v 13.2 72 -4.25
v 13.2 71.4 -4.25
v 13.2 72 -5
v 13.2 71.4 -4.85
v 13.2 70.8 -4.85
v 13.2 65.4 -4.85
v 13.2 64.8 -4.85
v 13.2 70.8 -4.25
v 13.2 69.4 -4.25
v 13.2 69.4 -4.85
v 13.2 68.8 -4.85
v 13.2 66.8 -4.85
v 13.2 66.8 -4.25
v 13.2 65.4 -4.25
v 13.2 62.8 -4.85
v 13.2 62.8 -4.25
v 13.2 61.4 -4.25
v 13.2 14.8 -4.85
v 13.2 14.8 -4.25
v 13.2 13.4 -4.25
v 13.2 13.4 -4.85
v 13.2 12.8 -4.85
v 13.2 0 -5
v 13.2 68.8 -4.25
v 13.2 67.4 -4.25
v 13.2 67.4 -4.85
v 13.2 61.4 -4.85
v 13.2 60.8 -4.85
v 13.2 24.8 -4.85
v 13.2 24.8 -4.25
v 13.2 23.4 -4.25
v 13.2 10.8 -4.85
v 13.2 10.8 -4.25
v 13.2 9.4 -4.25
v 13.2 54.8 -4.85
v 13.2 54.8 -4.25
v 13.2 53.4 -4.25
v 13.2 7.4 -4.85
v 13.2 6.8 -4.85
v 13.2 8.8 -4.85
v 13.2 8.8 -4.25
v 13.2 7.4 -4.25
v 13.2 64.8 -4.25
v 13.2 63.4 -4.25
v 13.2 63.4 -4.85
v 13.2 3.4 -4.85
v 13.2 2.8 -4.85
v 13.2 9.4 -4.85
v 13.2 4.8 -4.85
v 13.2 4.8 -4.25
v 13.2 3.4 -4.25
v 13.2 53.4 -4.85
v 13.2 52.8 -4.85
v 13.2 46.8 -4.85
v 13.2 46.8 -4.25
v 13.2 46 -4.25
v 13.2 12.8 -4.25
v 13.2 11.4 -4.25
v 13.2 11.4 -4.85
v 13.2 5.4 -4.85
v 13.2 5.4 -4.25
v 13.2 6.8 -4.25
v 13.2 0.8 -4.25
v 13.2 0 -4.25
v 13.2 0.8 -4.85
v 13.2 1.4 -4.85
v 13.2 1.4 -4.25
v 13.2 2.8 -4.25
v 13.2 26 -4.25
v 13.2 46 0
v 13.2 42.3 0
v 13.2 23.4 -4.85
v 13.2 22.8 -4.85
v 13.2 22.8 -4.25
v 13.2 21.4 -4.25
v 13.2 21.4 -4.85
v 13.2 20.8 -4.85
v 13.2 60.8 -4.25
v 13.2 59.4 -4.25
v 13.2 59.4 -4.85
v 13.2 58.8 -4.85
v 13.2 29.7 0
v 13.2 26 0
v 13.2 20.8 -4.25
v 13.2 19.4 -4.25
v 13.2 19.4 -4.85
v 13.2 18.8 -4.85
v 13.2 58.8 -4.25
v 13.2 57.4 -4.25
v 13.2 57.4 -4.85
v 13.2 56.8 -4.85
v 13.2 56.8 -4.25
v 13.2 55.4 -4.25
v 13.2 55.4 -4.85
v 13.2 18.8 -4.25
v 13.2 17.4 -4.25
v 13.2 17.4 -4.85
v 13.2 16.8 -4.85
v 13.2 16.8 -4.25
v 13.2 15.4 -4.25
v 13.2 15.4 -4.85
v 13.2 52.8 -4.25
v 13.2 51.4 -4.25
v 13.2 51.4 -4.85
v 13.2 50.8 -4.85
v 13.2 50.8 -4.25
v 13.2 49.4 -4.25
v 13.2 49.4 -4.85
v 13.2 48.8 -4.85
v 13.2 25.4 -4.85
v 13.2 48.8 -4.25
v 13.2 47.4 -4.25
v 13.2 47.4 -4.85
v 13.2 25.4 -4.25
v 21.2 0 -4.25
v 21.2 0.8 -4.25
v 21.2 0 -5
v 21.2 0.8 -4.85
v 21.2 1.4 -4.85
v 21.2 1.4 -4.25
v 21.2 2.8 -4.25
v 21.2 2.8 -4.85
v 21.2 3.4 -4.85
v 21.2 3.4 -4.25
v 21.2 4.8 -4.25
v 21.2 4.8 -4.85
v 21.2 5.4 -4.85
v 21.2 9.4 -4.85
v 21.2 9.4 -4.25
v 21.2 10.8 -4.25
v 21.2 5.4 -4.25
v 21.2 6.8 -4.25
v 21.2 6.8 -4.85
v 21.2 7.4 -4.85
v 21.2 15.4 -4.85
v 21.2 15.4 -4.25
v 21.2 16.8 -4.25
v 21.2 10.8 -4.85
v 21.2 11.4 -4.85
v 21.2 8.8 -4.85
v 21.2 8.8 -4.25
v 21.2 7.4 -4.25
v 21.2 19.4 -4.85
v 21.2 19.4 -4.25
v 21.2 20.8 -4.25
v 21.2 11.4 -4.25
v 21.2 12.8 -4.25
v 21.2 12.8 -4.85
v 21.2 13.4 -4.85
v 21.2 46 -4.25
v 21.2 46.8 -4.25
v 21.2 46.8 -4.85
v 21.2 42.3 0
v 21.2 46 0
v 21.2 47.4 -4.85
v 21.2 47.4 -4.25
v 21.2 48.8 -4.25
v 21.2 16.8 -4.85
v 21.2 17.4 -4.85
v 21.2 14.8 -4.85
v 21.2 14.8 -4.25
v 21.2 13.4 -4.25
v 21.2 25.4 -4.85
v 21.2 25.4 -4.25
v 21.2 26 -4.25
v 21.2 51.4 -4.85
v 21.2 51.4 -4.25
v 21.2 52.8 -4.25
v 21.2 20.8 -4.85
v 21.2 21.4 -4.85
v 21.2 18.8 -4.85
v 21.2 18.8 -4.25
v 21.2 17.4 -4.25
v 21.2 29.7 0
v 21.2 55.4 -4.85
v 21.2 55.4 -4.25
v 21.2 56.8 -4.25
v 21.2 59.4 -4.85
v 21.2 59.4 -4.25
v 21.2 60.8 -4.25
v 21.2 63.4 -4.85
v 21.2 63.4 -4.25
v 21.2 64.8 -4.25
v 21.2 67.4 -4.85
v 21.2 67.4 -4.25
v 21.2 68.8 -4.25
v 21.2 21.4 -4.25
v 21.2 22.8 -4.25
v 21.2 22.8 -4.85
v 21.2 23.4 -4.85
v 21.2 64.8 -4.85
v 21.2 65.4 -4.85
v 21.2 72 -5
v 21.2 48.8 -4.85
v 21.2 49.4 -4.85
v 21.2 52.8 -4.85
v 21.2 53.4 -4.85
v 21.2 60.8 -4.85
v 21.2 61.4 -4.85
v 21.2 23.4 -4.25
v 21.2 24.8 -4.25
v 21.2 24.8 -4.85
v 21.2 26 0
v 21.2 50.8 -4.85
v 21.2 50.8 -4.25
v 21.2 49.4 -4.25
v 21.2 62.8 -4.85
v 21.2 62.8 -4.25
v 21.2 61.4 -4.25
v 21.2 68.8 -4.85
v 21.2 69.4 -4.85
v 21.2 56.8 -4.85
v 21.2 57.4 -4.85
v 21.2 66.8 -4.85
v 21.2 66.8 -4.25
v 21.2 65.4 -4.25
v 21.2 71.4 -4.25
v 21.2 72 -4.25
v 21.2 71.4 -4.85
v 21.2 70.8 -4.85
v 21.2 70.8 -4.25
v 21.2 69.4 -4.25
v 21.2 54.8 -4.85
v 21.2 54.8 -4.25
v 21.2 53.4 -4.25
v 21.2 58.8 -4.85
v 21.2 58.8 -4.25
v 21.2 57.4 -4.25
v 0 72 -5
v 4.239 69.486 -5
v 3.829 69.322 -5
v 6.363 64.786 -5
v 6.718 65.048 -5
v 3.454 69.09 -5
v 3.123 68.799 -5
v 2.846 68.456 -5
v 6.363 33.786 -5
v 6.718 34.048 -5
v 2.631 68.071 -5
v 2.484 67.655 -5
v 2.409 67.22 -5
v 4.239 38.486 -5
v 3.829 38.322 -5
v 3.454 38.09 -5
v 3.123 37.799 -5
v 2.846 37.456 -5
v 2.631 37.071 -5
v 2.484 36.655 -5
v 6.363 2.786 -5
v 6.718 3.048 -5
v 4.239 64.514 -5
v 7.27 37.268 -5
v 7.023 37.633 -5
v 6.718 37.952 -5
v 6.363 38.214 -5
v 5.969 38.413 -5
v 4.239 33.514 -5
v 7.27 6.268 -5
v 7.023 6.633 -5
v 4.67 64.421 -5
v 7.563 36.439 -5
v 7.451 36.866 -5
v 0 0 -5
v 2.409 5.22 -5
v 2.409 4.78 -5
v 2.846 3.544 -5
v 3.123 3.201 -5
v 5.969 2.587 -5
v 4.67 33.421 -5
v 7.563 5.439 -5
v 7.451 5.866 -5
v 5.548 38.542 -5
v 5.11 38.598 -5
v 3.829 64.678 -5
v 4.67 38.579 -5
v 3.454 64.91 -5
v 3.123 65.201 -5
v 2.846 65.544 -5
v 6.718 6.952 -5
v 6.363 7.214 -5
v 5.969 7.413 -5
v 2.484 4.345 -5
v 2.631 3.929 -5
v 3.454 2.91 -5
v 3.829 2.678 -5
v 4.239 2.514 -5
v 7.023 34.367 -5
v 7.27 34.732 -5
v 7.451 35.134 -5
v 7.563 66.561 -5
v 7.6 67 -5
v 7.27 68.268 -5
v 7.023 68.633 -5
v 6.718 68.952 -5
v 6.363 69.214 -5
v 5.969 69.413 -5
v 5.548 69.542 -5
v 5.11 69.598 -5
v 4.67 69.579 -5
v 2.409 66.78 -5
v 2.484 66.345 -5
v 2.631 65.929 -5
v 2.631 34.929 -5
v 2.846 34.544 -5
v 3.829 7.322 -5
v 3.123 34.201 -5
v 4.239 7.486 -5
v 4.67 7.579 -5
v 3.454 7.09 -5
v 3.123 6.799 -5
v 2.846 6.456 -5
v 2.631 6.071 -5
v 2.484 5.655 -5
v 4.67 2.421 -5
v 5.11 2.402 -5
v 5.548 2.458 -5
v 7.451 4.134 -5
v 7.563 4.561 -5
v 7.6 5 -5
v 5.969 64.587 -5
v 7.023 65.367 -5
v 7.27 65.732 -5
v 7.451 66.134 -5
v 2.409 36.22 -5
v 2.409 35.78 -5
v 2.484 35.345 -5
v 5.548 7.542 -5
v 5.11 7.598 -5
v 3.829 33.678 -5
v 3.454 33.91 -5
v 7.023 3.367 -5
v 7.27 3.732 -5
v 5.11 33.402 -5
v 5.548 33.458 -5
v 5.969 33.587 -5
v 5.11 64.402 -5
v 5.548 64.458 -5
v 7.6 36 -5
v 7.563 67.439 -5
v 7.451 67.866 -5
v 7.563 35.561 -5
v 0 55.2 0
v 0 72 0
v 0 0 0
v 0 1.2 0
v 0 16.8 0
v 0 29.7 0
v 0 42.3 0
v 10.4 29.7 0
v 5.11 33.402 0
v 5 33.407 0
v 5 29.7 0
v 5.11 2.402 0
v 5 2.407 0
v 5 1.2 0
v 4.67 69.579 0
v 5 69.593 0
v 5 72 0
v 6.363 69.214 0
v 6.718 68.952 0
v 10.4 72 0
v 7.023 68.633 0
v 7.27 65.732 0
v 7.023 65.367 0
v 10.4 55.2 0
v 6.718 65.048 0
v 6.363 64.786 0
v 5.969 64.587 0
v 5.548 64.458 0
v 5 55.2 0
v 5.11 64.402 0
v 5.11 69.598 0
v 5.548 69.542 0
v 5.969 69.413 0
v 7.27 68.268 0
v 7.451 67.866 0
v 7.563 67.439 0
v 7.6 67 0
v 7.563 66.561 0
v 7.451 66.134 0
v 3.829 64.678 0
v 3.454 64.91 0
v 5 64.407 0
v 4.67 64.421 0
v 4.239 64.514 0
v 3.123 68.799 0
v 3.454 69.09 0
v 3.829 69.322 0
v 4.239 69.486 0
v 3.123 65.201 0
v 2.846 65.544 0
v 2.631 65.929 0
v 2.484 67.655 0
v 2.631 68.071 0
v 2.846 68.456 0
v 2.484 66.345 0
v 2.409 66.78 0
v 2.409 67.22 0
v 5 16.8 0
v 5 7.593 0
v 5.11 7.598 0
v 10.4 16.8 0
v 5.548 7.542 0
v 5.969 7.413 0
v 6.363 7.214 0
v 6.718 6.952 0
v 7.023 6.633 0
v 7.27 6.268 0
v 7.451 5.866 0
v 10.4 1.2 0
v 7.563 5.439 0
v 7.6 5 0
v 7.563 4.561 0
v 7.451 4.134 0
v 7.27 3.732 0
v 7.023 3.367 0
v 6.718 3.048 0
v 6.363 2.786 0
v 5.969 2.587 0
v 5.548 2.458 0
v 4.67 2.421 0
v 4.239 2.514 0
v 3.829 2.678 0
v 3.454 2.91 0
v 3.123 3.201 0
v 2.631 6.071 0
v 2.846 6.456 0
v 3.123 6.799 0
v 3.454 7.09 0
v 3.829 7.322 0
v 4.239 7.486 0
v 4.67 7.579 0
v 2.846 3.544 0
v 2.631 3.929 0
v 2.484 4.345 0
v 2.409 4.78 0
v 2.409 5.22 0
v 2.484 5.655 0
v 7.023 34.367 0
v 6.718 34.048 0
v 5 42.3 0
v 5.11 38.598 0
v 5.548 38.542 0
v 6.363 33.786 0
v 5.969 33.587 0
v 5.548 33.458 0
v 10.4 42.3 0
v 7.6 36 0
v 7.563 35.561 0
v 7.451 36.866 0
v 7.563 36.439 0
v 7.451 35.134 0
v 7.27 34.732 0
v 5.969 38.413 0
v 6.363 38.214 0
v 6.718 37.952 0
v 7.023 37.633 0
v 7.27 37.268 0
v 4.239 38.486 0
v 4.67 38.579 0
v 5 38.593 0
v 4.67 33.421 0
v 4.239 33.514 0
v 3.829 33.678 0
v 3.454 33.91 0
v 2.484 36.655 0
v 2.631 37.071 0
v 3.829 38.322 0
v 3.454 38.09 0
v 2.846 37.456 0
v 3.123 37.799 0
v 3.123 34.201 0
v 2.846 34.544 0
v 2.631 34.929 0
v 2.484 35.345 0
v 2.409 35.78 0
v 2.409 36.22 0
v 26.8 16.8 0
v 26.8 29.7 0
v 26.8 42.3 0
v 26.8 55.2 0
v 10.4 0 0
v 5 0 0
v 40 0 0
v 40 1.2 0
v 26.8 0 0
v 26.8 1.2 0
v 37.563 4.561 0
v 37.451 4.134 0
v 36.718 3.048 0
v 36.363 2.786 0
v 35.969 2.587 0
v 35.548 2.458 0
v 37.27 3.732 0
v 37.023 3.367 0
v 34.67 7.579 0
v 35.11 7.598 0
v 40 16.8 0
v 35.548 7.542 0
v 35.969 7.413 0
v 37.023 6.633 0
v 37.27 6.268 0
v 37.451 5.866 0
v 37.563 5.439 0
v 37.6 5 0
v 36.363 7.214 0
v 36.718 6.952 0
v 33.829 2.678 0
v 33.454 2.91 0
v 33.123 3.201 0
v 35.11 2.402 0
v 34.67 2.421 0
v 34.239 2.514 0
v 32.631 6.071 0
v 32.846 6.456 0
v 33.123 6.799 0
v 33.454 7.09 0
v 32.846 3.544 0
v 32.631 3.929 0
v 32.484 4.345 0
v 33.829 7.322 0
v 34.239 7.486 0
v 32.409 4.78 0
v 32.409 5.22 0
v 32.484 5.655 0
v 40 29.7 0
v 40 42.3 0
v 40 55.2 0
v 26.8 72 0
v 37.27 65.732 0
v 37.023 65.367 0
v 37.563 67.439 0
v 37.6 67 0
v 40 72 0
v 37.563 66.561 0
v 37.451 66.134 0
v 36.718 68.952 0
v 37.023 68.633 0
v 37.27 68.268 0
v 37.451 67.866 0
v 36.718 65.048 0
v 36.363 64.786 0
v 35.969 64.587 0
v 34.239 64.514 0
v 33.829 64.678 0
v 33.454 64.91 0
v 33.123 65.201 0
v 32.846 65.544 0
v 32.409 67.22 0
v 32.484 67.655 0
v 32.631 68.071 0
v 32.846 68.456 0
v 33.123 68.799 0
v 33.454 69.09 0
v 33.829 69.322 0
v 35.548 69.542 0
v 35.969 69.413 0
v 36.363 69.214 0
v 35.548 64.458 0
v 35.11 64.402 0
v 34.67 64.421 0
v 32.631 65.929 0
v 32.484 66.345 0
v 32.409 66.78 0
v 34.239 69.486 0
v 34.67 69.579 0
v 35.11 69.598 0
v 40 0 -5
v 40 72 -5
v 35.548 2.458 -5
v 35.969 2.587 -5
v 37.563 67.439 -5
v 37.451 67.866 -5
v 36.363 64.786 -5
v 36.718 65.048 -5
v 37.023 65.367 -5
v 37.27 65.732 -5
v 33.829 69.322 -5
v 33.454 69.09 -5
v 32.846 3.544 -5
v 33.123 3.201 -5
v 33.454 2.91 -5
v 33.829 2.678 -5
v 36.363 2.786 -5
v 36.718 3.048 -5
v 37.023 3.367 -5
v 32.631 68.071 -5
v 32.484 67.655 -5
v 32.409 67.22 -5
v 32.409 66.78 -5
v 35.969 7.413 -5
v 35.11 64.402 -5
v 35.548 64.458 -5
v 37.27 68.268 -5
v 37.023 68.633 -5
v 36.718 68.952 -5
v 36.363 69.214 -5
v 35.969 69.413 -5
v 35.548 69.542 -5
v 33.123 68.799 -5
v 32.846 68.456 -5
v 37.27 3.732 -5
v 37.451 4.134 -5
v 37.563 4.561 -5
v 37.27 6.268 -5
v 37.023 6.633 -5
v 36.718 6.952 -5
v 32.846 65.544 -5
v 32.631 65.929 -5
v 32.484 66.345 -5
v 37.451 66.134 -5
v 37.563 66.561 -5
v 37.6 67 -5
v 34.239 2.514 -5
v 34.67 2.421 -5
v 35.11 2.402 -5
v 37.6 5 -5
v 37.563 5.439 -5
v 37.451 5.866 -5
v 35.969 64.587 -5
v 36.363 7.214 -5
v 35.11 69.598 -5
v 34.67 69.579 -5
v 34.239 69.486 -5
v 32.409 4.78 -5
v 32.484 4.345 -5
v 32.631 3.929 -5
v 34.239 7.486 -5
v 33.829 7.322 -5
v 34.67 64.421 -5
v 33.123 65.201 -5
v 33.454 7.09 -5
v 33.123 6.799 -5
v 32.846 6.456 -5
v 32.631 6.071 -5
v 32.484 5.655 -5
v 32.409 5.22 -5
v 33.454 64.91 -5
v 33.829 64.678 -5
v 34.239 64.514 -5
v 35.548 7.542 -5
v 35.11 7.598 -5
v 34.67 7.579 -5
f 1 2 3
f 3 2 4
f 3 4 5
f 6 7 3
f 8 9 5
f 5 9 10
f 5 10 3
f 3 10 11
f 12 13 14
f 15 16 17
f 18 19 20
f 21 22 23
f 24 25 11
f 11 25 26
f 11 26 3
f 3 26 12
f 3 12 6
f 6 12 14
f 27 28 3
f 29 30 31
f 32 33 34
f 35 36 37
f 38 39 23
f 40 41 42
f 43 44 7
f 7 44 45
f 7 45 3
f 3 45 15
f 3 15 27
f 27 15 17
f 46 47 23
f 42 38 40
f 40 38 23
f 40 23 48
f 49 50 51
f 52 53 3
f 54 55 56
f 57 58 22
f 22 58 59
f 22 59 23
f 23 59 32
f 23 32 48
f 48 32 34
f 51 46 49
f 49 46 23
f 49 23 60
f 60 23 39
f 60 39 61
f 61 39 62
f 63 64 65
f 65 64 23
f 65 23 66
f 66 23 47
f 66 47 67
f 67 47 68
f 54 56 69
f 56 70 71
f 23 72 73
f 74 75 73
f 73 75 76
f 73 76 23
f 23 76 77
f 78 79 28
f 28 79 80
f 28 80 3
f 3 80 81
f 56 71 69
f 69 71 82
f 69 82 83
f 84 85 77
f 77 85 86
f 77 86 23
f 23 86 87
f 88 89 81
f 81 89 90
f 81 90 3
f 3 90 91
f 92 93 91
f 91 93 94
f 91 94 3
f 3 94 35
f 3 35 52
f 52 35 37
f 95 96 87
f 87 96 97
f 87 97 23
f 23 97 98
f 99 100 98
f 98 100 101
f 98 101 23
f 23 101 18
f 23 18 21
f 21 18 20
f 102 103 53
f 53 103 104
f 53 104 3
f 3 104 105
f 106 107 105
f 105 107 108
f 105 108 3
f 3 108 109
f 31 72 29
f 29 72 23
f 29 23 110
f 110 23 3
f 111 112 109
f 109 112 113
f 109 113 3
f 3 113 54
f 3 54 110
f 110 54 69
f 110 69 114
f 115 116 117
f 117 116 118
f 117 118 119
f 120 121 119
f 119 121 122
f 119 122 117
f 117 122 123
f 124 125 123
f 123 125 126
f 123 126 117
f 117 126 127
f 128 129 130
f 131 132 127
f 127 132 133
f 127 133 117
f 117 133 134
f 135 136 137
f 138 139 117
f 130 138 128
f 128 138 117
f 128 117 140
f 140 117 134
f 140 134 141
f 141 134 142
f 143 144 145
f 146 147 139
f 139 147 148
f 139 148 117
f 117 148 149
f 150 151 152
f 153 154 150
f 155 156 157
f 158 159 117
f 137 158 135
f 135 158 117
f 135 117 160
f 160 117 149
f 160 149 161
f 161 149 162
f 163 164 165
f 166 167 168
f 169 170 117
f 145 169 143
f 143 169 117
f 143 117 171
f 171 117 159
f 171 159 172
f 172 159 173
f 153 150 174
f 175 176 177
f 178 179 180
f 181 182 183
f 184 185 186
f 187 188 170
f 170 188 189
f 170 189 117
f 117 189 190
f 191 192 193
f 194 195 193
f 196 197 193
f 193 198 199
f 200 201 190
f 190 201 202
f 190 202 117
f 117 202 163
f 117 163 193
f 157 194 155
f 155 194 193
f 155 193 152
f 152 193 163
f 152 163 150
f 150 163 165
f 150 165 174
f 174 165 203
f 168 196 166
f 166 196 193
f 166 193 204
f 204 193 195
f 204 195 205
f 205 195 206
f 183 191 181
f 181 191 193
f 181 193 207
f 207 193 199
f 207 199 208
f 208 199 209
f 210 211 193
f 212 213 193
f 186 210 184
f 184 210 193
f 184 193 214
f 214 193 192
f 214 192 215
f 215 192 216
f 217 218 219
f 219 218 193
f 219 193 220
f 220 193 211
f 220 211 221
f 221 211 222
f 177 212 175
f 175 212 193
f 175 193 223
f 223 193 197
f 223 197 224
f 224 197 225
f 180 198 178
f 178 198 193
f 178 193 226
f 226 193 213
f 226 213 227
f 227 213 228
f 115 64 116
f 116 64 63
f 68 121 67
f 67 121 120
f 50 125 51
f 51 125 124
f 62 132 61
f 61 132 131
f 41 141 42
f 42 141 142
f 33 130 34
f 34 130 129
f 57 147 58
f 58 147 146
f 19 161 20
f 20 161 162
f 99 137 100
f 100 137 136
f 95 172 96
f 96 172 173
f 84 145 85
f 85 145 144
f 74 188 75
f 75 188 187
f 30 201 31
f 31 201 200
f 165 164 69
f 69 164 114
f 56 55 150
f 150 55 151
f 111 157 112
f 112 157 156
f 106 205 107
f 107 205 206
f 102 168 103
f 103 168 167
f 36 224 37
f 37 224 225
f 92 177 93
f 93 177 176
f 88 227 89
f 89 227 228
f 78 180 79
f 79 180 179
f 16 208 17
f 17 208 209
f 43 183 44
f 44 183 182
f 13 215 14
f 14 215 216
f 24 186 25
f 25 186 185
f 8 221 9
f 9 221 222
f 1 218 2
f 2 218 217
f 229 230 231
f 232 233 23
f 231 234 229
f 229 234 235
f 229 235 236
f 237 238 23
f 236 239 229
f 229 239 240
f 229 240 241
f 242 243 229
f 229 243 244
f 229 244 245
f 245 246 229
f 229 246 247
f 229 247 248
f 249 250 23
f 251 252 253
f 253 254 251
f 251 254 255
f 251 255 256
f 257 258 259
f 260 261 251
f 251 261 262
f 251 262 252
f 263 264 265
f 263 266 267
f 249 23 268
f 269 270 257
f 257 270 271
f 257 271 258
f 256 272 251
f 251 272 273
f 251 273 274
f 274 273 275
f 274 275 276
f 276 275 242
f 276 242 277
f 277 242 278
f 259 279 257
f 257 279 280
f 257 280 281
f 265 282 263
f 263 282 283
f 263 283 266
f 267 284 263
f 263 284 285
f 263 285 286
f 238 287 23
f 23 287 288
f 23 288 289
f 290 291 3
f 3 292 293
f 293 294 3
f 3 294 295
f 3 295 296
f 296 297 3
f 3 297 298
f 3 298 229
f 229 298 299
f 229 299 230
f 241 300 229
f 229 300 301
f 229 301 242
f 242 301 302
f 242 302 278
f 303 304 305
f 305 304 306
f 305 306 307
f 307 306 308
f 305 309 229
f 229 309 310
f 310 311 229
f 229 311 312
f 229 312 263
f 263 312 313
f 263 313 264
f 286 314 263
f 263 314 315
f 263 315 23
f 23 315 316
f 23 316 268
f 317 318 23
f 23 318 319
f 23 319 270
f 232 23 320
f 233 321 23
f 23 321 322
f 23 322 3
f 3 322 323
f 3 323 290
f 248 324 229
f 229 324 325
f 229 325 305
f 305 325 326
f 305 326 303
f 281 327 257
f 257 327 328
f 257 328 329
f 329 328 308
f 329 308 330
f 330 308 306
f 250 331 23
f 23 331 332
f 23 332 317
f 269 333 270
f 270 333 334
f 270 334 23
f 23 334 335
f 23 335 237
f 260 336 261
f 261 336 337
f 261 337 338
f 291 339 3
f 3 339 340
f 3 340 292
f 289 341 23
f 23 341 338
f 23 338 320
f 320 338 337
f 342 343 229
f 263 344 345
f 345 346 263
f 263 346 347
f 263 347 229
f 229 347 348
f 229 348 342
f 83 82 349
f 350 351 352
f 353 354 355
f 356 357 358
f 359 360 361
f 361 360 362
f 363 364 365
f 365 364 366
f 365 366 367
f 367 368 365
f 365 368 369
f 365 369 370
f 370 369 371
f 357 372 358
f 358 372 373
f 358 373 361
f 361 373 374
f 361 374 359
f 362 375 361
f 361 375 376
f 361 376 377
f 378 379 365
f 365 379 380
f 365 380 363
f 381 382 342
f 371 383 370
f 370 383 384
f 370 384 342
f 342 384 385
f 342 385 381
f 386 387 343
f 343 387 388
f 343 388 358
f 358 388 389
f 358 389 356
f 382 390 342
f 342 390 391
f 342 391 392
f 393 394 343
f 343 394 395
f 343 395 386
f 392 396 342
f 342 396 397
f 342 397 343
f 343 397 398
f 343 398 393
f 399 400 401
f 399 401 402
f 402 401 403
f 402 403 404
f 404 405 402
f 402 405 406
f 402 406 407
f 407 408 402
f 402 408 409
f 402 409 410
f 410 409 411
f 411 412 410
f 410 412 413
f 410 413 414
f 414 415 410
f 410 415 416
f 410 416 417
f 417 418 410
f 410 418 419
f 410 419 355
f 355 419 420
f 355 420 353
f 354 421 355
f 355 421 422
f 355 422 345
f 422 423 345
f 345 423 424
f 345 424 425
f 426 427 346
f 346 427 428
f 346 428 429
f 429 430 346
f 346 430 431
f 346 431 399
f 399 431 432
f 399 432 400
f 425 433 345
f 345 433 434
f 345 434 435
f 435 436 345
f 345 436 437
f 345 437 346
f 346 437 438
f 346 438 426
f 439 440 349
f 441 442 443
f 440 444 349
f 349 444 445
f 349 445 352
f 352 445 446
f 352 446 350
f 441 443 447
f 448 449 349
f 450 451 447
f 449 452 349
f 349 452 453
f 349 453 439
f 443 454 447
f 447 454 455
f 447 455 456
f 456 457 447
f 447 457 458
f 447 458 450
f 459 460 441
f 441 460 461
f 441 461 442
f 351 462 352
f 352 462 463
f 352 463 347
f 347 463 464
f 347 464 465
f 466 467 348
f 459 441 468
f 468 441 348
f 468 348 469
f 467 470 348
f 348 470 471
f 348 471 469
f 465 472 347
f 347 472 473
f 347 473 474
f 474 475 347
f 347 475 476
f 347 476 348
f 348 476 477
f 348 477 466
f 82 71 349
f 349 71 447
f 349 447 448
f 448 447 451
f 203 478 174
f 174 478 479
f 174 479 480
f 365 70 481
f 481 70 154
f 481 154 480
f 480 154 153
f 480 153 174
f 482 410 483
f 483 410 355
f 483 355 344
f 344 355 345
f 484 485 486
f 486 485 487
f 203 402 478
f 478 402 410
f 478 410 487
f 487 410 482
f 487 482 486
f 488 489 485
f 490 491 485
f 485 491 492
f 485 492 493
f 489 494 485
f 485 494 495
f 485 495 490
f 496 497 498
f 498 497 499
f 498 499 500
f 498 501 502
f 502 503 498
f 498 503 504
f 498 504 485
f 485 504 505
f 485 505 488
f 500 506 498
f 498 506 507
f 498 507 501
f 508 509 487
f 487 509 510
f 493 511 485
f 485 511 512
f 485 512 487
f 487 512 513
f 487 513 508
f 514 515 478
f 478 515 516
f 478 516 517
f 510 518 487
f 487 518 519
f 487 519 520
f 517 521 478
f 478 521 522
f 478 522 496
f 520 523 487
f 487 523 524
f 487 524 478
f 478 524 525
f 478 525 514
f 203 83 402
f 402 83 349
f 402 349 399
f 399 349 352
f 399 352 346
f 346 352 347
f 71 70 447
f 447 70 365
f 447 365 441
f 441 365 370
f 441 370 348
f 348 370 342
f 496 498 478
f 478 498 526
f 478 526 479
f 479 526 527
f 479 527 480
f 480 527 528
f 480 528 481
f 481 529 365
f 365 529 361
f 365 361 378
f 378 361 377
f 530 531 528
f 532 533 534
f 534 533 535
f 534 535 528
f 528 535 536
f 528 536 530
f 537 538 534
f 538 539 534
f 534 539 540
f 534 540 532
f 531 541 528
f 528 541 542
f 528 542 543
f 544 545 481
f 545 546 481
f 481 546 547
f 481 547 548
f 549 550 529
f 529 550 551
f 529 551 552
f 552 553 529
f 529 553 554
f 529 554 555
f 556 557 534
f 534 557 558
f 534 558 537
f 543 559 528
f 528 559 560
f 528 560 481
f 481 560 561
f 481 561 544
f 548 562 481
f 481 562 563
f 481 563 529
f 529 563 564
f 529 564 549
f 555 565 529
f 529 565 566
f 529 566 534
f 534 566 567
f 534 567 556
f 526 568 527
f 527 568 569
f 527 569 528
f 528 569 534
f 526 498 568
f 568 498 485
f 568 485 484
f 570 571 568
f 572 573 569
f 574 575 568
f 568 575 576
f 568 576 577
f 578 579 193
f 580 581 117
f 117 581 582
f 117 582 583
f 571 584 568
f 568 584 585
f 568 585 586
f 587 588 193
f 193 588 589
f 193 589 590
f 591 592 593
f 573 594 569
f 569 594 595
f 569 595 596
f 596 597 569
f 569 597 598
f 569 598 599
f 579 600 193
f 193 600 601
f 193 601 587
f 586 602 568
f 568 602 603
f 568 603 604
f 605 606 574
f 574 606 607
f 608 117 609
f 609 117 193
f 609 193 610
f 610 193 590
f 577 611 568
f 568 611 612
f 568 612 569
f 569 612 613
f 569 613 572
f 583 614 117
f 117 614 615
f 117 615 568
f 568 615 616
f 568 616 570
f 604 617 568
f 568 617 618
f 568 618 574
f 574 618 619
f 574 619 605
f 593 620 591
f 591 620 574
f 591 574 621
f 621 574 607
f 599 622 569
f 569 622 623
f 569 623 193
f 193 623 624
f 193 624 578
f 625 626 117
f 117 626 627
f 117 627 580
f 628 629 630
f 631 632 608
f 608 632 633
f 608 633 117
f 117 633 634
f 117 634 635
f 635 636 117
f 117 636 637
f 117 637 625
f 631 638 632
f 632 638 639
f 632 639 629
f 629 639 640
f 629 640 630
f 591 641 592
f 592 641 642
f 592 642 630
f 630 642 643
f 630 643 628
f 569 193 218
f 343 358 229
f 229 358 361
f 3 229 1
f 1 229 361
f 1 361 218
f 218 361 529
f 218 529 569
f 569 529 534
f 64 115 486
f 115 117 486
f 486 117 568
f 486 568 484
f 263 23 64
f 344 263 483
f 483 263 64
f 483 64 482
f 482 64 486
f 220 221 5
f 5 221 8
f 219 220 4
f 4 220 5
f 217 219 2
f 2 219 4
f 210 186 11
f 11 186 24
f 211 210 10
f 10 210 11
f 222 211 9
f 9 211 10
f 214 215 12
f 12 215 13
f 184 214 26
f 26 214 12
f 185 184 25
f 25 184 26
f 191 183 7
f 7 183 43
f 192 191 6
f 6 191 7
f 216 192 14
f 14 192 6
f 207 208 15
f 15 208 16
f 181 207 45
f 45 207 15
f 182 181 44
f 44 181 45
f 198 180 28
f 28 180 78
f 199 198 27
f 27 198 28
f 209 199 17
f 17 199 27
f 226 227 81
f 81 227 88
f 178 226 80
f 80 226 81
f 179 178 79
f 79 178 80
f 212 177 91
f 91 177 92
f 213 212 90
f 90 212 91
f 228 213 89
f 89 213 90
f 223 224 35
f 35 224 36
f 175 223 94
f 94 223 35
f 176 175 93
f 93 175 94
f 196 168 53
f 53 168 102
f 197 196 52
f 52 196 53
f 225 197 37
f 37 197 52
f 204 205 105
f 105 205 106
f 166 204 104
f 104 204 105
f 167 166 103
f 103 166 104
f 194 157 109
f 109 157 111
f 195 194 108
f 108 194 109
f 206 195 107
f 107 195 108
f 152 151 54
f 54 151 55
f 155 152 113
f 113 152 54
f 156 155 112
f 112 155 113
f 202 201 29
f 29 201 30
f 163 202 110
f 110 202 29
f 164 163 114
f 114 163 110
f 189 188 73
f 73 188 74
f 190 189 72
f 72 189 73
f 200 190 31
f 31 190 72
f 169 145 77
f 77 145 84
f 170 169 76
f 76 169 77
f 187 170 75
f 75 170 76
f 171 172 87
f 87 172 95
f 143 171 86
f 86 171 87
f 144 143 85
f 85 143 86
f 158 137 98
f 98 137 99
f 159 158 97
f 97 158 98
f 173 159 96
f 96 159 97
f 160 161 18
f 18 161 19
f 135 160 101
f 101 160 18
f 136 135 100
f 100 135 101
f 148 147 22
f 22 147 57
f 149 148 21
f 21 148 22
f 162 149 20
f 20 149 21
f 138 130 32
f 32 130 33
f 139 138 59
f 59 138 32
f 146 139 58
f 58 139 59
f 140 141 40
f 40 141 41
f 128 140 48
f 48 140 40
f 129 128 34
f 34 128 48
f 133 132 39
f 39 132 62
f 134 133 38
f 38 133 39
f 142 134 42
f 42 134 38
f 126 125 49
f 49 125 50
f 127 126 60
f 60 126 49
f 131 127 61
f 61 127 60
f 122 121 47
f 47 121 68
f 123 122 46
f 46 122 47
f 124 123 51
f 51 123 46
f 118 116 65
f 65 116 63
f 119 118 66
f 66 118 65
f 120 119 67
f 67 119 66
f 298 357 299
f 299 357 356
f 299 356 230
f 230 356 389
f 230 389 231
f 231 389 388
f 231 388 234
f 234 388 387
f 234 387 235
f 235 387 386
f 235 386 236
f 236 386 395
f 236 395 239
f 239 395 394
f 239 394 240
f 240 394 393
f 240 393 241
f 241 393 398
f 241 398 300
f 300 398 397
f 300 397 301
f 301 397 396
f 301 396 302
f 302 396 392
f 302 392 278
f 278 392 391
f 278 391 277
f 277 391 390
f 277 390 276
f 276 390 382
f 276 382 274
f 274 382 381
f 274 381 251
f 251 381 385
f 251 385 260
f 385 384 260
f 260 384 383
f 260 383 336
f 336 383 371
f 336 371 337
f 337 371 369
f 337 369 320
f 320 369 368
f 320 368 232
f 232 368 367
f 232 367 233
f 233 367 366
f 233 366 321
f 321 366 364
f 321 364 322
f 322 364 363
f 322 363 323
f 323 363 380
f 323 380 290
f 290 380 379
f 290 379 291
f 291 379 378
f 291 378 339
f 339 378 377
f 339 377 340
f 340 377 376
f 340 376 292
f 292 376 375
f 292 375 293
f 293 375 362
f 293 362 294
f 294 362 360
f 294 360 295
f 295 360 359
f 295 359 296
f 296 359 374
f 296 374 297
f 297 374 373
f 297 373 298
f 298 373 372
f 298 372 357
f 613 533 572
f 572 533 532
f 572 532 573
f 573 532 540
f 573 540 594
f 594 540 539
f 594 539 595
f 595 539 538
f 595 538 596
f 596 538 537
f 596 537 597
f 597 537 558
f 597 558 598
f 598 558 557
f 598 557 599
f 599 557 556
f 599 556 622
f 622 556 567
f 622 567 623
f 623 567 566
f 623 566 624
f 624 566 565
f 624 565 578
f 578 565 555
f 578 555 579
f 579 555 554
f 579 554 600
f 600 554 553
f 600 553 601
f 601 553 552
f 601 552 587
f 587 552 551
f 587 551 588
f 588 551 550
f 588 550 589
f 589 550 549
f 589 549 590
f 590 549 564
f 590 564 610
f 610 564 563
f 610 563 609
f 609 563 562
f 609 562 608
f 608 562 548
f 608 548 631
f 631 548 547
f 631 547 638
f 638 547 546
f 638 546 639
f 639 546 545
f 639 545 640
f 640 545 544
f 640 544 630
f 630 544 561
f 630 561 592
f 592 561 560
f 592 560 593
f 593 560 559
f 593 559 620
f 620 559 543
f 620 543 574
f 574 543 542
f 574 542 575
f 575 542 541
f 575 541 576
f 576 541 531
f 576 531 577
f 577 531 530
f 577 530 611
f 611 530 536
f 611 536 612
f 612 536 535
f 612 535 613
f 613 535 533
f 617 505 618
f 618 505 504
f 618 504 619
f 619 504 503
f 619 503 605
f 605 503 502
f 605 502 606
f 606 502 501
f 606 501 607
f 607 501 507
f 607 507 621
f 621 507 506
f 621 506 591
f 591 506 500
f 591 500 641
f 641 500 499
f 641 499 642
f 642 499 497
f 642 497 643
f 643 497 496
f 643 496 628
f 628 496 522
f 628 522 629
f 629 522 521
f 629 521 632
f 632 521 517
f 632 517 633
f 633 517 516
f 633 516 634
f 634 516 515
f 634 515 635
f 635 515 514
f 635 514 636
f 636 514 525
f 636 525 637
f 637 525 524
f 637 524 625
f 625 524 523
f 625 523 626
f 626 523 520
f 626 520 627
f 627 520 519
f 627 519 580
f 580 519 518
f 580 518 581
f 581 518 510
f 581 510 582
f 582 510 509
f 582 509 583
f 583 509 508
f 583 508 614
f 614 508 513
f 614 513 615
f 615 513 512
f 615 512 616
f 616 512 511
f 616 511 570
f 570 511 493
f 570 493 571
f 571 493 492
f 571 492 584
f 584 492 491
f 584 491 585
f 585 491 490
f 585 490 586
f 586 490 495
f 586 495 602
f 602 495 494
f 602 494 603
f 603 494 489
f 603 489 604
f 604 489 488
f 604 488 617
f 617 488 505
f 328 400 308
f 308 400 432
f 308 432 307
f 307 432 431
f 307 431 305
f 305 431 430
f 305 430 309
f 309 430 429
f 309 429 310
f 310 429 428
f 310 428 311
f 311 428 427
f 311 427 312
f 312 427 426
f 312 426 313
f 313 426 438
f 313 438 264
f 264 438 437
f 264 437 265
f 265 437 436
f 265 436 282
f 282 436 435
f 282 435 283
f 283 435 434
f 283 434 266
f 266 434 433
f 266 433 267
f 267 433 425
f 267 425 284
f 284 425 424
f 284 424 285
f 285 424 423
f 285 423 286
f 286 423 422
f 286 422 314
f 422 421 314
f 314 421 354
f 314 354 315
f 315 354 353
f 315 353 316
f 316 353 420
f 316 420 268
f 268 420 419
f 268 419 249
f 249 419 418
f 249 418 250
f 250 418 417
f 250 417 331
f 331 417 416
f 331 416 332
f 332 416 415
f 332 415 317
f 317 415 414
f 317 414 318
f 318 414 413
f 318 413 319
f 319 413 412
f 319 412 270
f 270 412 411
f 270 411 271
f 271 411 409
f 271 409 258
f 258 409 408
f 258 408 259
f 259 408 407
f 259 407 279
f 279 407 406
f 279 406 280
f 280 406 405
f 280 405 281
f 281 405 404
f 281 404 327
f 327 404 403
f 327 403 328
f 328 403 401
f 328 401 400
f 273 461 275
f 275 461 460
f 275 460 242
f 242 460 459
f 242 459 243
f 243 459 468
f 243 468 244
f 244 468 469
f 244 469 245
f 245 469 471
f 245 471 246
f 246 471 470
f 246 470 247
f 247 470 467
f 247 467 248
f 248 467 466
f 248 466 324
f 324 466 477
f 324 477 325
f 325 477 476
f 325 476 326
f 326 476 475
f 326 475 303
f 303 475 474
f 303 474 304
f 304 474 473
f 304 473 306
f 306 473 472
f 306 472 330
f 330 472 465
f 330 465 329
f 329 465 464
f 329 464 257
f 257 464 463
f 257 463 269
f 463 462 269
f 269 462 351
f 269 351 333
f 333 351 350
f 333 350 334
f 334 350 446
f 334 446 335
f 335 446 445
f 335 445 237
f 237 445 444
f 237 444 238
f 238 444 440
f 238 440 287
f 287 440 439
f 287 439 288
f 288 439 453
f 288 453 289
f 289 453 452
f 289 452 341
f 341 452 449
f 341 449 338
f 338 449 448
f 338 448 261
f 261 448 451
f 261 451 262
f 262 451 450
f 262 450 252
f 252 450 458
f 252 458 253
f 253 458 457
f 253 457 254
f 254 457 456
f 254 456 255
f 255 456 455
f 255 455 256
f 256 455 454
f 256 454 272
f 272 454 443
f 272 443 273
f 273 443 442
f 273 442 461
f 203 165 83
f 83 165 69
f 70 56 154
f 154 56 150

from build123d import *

# Parameters (mm, degrees)
SKETCH1_W           = 40
SKETCH1_H           = 5
BOSS_EXTRUDE1_DEPTH = 72
SKETCH2_W           = 8
SKETCH2_H           = 72
CUT_EXTRUDE1_DEPTH  = 0.75
SKETCH3_W           = 0.6
SKETCH3_H           = 0.6
BOSS_EXTRUDE2_DEPTH = 8
SKETCH4_R           = 2.6
CUT_EXTRUDE2_DEPTH  = 83.516664984
SKETCH5_W           = 8
SKETCH5_H           = 20
CUT_EXTRUDE3_DEPTH  = 83.516664984


with BuildPart() as part:
    # Sketch1 → Boss-Extrude1 (new body)
    with BuildSketch(Plane(origin=(0, 0, 0), x_dir=(1, 0, 0), z_dir=(0, 1, 0))):
        with Locations((20, 2.5)):
            Rectangle(SKETCH1_W, SKETCH1_H)
    extrude(amount=BOSS_EXTRUDE1_DEPTH)

    # Sketch2 → Cut-Extrude1 (cut)
    with BuildSketch(Plane(origin=(0, 0, -5), x_dir=(-1, 0, 0), z_dir=(0, 0, -1))):
        with Locations((-17.2, 36)):
            Rectangle(SKETCH2_W, SKETCH2_H)
    extrude(amount=-CUT_EXTRUDE1_DEPTH, mode=Mode.SUBTRACT)

    # Sketch3 → Boss-Extrude2 (add)
    with BuildSketch(Plane(origin=(13.2, 0, 0), x_dir=(0, 0, -1), z_dir=(1, 0, 0))):
        with Locations((4.55, 71.1)):
            Rectangle(SKETCH3_W, SKETCH3_H)
        with Locations((4.55, 69.1)):
            Rectangle(SKETCH3_W, SKETCH3_H)
        with Locations((4.55, 67.1)):
            Rectangle(SKETCH3_W, SKETCH3_H)
        with Locations((4.55, 65.1)):
            Rectangle(SKETCH3_W, SKETCH3_H)
        with Locations((4.55, 63.1)):
            Rectangle(SKETCH3_W, SKETCH3_H)
        with Locations((4.55, 61.1)):
            Rectangle(SKETCH3_W, SKETCH3_H)
        with Locations((4.55, 59.1)):
            Rectangle(SKETCH3_W, SKETCH3_H)
        with Locations((4.55, 57.1)):
            Rectangle(SKETCH3_W, SKETCH3_H)
        with Locations((4.55, 55.1)):
            Rectangle(SKETCH3_W, SKETCH3_H)
        with Locations((4.55, 53.1)):
            Rectangle(SKETCH3_W, SKETCH3_H)
        with Locations((4.55, 51.1)):
            Rectangle(SKETCH3_W, SKETCH3_H)
        with Locations((4.55, 49.1)):
            Rectangle(SKETCH3_W, SKETCH3_H)
        with Locations((4.55, 47.1)):
            Rectangle(SKETCH3_W, SKETCH3_H)
        with Locations((4.55, 45.1)):
            Rectangle(SKETCH3_W, SKETCH3_H)
        with Locations((4.55, 43.1)):
            Rectangle(SKETCH3_W, SKETCH3_H)
        with Locations((4.55, 41.1)):
            Rectangle(SKETCH3_W, SKETCH3_H)
        with Locations((4.55, 39.1)):
            Rectangle(SKETCH3_W, SKETCH3_H)
        with Locations((4.55, 37.1)):
            Rectangle(SKETCH3_W, SKETCH3_H)
        with Locations((4.55, 35.1)):
            Rectangle(SKETCH3_W, SKETCH3_H)
        with Locations((4.55, 33.1)):
            Rectangle(SKETCH3_W, SKETCH3_H)
        with Locations((4.55, 31.1)):
            Rectangle(SKETCH3_W, SKETCH3_H)
        with Locations((4.55, 29.1)):
            Rectangle(SKETCH3_W, SKETCH3_H)
        with Locations((4.55, 27.1)):
            Rectangle(SKETCH3_W, SKETCH3_H)
        with Locations((4.55, 25.1)):
            Rectangle(SKETCH3_W, SKETCH3_H)
        with Locations((4.55, 23.1)):
            Rectangle(SKETCH3_W, SKETCH3_H)
        with Locations((4.55, 21.1)):
            Rectangle(SKETCH3_W, SKETCH3_H)
        with Locations((4.55, 19.1)):
            Rectangle(SKETCH3_W, SKETCH3_H)
        with Locations((4.55, 17.1)):
            Rectangle(SKETCH3_W, SKETCH3_H)
        with Locations((4.55, 15.1)):
            Rectangle(SKETCH3_W, SKETCH3_H)
        with Locations((4.55, 13.1)):
            Rectangle(SKETCH3_W, SKETCH3_H)
        with Locations((4.55, 11.1)):
            Rectangle(SKETCH3_W, SKETCH3_H)
        with Locations((4.55, 9.1)):
            Rectangle(SKETCH3_W, SKETCH3_H)
        with Locations((4.55, 7.1)):
            Rectangle(SKETCH3_W, SKETCH3_H)
        with Locations((4.55, 5.1)):
            Rectangle(SKETCH3_W, SKETCH3_H)
        with Locations((4.55, 3.1)):
            Rectangle(SKETCH3_W, SKETCH3_H)
        with Locations((4.55, 1.1)):
            Rectangle(SKETCH3_W, SKETCH3_H)
    extrude(amount=BOSS_EXTRUDE2_DEPTH)

    # Sketch4 → Cut-Extrude2 (cut, through all)
    with BuildSketch(Plane.XY):
        with Locations((5, 67)):
            Circle(SKETCH4_R)
        with Locations((35, 67)):
            Circle(SKETCH4_R)
        with Locations((5, 5)):
            Circle(SKETCH4_R)
        with Locations((35, 5)):
            Circle(SKETCH4_R)
        with Locations((5, 36)):
            Circle(SKETCH4_R)
    extrude(amount=-CUT_EXTRUDE2_DEPTH, mode=Mode.SUBTRACT)

    # Sketch5 → Cut-Extrude3 (cut, through all)
    with BuildSketch(Plane.XY):
        with Locations((17.2, 36)):
            Rectangle(SKETCH5_W, SKETCH5_H)
    extrude(amount=-CUT_EXTRUDE3_DEPTH, mode=Mode.SUBTRACT)


solid = part.part
